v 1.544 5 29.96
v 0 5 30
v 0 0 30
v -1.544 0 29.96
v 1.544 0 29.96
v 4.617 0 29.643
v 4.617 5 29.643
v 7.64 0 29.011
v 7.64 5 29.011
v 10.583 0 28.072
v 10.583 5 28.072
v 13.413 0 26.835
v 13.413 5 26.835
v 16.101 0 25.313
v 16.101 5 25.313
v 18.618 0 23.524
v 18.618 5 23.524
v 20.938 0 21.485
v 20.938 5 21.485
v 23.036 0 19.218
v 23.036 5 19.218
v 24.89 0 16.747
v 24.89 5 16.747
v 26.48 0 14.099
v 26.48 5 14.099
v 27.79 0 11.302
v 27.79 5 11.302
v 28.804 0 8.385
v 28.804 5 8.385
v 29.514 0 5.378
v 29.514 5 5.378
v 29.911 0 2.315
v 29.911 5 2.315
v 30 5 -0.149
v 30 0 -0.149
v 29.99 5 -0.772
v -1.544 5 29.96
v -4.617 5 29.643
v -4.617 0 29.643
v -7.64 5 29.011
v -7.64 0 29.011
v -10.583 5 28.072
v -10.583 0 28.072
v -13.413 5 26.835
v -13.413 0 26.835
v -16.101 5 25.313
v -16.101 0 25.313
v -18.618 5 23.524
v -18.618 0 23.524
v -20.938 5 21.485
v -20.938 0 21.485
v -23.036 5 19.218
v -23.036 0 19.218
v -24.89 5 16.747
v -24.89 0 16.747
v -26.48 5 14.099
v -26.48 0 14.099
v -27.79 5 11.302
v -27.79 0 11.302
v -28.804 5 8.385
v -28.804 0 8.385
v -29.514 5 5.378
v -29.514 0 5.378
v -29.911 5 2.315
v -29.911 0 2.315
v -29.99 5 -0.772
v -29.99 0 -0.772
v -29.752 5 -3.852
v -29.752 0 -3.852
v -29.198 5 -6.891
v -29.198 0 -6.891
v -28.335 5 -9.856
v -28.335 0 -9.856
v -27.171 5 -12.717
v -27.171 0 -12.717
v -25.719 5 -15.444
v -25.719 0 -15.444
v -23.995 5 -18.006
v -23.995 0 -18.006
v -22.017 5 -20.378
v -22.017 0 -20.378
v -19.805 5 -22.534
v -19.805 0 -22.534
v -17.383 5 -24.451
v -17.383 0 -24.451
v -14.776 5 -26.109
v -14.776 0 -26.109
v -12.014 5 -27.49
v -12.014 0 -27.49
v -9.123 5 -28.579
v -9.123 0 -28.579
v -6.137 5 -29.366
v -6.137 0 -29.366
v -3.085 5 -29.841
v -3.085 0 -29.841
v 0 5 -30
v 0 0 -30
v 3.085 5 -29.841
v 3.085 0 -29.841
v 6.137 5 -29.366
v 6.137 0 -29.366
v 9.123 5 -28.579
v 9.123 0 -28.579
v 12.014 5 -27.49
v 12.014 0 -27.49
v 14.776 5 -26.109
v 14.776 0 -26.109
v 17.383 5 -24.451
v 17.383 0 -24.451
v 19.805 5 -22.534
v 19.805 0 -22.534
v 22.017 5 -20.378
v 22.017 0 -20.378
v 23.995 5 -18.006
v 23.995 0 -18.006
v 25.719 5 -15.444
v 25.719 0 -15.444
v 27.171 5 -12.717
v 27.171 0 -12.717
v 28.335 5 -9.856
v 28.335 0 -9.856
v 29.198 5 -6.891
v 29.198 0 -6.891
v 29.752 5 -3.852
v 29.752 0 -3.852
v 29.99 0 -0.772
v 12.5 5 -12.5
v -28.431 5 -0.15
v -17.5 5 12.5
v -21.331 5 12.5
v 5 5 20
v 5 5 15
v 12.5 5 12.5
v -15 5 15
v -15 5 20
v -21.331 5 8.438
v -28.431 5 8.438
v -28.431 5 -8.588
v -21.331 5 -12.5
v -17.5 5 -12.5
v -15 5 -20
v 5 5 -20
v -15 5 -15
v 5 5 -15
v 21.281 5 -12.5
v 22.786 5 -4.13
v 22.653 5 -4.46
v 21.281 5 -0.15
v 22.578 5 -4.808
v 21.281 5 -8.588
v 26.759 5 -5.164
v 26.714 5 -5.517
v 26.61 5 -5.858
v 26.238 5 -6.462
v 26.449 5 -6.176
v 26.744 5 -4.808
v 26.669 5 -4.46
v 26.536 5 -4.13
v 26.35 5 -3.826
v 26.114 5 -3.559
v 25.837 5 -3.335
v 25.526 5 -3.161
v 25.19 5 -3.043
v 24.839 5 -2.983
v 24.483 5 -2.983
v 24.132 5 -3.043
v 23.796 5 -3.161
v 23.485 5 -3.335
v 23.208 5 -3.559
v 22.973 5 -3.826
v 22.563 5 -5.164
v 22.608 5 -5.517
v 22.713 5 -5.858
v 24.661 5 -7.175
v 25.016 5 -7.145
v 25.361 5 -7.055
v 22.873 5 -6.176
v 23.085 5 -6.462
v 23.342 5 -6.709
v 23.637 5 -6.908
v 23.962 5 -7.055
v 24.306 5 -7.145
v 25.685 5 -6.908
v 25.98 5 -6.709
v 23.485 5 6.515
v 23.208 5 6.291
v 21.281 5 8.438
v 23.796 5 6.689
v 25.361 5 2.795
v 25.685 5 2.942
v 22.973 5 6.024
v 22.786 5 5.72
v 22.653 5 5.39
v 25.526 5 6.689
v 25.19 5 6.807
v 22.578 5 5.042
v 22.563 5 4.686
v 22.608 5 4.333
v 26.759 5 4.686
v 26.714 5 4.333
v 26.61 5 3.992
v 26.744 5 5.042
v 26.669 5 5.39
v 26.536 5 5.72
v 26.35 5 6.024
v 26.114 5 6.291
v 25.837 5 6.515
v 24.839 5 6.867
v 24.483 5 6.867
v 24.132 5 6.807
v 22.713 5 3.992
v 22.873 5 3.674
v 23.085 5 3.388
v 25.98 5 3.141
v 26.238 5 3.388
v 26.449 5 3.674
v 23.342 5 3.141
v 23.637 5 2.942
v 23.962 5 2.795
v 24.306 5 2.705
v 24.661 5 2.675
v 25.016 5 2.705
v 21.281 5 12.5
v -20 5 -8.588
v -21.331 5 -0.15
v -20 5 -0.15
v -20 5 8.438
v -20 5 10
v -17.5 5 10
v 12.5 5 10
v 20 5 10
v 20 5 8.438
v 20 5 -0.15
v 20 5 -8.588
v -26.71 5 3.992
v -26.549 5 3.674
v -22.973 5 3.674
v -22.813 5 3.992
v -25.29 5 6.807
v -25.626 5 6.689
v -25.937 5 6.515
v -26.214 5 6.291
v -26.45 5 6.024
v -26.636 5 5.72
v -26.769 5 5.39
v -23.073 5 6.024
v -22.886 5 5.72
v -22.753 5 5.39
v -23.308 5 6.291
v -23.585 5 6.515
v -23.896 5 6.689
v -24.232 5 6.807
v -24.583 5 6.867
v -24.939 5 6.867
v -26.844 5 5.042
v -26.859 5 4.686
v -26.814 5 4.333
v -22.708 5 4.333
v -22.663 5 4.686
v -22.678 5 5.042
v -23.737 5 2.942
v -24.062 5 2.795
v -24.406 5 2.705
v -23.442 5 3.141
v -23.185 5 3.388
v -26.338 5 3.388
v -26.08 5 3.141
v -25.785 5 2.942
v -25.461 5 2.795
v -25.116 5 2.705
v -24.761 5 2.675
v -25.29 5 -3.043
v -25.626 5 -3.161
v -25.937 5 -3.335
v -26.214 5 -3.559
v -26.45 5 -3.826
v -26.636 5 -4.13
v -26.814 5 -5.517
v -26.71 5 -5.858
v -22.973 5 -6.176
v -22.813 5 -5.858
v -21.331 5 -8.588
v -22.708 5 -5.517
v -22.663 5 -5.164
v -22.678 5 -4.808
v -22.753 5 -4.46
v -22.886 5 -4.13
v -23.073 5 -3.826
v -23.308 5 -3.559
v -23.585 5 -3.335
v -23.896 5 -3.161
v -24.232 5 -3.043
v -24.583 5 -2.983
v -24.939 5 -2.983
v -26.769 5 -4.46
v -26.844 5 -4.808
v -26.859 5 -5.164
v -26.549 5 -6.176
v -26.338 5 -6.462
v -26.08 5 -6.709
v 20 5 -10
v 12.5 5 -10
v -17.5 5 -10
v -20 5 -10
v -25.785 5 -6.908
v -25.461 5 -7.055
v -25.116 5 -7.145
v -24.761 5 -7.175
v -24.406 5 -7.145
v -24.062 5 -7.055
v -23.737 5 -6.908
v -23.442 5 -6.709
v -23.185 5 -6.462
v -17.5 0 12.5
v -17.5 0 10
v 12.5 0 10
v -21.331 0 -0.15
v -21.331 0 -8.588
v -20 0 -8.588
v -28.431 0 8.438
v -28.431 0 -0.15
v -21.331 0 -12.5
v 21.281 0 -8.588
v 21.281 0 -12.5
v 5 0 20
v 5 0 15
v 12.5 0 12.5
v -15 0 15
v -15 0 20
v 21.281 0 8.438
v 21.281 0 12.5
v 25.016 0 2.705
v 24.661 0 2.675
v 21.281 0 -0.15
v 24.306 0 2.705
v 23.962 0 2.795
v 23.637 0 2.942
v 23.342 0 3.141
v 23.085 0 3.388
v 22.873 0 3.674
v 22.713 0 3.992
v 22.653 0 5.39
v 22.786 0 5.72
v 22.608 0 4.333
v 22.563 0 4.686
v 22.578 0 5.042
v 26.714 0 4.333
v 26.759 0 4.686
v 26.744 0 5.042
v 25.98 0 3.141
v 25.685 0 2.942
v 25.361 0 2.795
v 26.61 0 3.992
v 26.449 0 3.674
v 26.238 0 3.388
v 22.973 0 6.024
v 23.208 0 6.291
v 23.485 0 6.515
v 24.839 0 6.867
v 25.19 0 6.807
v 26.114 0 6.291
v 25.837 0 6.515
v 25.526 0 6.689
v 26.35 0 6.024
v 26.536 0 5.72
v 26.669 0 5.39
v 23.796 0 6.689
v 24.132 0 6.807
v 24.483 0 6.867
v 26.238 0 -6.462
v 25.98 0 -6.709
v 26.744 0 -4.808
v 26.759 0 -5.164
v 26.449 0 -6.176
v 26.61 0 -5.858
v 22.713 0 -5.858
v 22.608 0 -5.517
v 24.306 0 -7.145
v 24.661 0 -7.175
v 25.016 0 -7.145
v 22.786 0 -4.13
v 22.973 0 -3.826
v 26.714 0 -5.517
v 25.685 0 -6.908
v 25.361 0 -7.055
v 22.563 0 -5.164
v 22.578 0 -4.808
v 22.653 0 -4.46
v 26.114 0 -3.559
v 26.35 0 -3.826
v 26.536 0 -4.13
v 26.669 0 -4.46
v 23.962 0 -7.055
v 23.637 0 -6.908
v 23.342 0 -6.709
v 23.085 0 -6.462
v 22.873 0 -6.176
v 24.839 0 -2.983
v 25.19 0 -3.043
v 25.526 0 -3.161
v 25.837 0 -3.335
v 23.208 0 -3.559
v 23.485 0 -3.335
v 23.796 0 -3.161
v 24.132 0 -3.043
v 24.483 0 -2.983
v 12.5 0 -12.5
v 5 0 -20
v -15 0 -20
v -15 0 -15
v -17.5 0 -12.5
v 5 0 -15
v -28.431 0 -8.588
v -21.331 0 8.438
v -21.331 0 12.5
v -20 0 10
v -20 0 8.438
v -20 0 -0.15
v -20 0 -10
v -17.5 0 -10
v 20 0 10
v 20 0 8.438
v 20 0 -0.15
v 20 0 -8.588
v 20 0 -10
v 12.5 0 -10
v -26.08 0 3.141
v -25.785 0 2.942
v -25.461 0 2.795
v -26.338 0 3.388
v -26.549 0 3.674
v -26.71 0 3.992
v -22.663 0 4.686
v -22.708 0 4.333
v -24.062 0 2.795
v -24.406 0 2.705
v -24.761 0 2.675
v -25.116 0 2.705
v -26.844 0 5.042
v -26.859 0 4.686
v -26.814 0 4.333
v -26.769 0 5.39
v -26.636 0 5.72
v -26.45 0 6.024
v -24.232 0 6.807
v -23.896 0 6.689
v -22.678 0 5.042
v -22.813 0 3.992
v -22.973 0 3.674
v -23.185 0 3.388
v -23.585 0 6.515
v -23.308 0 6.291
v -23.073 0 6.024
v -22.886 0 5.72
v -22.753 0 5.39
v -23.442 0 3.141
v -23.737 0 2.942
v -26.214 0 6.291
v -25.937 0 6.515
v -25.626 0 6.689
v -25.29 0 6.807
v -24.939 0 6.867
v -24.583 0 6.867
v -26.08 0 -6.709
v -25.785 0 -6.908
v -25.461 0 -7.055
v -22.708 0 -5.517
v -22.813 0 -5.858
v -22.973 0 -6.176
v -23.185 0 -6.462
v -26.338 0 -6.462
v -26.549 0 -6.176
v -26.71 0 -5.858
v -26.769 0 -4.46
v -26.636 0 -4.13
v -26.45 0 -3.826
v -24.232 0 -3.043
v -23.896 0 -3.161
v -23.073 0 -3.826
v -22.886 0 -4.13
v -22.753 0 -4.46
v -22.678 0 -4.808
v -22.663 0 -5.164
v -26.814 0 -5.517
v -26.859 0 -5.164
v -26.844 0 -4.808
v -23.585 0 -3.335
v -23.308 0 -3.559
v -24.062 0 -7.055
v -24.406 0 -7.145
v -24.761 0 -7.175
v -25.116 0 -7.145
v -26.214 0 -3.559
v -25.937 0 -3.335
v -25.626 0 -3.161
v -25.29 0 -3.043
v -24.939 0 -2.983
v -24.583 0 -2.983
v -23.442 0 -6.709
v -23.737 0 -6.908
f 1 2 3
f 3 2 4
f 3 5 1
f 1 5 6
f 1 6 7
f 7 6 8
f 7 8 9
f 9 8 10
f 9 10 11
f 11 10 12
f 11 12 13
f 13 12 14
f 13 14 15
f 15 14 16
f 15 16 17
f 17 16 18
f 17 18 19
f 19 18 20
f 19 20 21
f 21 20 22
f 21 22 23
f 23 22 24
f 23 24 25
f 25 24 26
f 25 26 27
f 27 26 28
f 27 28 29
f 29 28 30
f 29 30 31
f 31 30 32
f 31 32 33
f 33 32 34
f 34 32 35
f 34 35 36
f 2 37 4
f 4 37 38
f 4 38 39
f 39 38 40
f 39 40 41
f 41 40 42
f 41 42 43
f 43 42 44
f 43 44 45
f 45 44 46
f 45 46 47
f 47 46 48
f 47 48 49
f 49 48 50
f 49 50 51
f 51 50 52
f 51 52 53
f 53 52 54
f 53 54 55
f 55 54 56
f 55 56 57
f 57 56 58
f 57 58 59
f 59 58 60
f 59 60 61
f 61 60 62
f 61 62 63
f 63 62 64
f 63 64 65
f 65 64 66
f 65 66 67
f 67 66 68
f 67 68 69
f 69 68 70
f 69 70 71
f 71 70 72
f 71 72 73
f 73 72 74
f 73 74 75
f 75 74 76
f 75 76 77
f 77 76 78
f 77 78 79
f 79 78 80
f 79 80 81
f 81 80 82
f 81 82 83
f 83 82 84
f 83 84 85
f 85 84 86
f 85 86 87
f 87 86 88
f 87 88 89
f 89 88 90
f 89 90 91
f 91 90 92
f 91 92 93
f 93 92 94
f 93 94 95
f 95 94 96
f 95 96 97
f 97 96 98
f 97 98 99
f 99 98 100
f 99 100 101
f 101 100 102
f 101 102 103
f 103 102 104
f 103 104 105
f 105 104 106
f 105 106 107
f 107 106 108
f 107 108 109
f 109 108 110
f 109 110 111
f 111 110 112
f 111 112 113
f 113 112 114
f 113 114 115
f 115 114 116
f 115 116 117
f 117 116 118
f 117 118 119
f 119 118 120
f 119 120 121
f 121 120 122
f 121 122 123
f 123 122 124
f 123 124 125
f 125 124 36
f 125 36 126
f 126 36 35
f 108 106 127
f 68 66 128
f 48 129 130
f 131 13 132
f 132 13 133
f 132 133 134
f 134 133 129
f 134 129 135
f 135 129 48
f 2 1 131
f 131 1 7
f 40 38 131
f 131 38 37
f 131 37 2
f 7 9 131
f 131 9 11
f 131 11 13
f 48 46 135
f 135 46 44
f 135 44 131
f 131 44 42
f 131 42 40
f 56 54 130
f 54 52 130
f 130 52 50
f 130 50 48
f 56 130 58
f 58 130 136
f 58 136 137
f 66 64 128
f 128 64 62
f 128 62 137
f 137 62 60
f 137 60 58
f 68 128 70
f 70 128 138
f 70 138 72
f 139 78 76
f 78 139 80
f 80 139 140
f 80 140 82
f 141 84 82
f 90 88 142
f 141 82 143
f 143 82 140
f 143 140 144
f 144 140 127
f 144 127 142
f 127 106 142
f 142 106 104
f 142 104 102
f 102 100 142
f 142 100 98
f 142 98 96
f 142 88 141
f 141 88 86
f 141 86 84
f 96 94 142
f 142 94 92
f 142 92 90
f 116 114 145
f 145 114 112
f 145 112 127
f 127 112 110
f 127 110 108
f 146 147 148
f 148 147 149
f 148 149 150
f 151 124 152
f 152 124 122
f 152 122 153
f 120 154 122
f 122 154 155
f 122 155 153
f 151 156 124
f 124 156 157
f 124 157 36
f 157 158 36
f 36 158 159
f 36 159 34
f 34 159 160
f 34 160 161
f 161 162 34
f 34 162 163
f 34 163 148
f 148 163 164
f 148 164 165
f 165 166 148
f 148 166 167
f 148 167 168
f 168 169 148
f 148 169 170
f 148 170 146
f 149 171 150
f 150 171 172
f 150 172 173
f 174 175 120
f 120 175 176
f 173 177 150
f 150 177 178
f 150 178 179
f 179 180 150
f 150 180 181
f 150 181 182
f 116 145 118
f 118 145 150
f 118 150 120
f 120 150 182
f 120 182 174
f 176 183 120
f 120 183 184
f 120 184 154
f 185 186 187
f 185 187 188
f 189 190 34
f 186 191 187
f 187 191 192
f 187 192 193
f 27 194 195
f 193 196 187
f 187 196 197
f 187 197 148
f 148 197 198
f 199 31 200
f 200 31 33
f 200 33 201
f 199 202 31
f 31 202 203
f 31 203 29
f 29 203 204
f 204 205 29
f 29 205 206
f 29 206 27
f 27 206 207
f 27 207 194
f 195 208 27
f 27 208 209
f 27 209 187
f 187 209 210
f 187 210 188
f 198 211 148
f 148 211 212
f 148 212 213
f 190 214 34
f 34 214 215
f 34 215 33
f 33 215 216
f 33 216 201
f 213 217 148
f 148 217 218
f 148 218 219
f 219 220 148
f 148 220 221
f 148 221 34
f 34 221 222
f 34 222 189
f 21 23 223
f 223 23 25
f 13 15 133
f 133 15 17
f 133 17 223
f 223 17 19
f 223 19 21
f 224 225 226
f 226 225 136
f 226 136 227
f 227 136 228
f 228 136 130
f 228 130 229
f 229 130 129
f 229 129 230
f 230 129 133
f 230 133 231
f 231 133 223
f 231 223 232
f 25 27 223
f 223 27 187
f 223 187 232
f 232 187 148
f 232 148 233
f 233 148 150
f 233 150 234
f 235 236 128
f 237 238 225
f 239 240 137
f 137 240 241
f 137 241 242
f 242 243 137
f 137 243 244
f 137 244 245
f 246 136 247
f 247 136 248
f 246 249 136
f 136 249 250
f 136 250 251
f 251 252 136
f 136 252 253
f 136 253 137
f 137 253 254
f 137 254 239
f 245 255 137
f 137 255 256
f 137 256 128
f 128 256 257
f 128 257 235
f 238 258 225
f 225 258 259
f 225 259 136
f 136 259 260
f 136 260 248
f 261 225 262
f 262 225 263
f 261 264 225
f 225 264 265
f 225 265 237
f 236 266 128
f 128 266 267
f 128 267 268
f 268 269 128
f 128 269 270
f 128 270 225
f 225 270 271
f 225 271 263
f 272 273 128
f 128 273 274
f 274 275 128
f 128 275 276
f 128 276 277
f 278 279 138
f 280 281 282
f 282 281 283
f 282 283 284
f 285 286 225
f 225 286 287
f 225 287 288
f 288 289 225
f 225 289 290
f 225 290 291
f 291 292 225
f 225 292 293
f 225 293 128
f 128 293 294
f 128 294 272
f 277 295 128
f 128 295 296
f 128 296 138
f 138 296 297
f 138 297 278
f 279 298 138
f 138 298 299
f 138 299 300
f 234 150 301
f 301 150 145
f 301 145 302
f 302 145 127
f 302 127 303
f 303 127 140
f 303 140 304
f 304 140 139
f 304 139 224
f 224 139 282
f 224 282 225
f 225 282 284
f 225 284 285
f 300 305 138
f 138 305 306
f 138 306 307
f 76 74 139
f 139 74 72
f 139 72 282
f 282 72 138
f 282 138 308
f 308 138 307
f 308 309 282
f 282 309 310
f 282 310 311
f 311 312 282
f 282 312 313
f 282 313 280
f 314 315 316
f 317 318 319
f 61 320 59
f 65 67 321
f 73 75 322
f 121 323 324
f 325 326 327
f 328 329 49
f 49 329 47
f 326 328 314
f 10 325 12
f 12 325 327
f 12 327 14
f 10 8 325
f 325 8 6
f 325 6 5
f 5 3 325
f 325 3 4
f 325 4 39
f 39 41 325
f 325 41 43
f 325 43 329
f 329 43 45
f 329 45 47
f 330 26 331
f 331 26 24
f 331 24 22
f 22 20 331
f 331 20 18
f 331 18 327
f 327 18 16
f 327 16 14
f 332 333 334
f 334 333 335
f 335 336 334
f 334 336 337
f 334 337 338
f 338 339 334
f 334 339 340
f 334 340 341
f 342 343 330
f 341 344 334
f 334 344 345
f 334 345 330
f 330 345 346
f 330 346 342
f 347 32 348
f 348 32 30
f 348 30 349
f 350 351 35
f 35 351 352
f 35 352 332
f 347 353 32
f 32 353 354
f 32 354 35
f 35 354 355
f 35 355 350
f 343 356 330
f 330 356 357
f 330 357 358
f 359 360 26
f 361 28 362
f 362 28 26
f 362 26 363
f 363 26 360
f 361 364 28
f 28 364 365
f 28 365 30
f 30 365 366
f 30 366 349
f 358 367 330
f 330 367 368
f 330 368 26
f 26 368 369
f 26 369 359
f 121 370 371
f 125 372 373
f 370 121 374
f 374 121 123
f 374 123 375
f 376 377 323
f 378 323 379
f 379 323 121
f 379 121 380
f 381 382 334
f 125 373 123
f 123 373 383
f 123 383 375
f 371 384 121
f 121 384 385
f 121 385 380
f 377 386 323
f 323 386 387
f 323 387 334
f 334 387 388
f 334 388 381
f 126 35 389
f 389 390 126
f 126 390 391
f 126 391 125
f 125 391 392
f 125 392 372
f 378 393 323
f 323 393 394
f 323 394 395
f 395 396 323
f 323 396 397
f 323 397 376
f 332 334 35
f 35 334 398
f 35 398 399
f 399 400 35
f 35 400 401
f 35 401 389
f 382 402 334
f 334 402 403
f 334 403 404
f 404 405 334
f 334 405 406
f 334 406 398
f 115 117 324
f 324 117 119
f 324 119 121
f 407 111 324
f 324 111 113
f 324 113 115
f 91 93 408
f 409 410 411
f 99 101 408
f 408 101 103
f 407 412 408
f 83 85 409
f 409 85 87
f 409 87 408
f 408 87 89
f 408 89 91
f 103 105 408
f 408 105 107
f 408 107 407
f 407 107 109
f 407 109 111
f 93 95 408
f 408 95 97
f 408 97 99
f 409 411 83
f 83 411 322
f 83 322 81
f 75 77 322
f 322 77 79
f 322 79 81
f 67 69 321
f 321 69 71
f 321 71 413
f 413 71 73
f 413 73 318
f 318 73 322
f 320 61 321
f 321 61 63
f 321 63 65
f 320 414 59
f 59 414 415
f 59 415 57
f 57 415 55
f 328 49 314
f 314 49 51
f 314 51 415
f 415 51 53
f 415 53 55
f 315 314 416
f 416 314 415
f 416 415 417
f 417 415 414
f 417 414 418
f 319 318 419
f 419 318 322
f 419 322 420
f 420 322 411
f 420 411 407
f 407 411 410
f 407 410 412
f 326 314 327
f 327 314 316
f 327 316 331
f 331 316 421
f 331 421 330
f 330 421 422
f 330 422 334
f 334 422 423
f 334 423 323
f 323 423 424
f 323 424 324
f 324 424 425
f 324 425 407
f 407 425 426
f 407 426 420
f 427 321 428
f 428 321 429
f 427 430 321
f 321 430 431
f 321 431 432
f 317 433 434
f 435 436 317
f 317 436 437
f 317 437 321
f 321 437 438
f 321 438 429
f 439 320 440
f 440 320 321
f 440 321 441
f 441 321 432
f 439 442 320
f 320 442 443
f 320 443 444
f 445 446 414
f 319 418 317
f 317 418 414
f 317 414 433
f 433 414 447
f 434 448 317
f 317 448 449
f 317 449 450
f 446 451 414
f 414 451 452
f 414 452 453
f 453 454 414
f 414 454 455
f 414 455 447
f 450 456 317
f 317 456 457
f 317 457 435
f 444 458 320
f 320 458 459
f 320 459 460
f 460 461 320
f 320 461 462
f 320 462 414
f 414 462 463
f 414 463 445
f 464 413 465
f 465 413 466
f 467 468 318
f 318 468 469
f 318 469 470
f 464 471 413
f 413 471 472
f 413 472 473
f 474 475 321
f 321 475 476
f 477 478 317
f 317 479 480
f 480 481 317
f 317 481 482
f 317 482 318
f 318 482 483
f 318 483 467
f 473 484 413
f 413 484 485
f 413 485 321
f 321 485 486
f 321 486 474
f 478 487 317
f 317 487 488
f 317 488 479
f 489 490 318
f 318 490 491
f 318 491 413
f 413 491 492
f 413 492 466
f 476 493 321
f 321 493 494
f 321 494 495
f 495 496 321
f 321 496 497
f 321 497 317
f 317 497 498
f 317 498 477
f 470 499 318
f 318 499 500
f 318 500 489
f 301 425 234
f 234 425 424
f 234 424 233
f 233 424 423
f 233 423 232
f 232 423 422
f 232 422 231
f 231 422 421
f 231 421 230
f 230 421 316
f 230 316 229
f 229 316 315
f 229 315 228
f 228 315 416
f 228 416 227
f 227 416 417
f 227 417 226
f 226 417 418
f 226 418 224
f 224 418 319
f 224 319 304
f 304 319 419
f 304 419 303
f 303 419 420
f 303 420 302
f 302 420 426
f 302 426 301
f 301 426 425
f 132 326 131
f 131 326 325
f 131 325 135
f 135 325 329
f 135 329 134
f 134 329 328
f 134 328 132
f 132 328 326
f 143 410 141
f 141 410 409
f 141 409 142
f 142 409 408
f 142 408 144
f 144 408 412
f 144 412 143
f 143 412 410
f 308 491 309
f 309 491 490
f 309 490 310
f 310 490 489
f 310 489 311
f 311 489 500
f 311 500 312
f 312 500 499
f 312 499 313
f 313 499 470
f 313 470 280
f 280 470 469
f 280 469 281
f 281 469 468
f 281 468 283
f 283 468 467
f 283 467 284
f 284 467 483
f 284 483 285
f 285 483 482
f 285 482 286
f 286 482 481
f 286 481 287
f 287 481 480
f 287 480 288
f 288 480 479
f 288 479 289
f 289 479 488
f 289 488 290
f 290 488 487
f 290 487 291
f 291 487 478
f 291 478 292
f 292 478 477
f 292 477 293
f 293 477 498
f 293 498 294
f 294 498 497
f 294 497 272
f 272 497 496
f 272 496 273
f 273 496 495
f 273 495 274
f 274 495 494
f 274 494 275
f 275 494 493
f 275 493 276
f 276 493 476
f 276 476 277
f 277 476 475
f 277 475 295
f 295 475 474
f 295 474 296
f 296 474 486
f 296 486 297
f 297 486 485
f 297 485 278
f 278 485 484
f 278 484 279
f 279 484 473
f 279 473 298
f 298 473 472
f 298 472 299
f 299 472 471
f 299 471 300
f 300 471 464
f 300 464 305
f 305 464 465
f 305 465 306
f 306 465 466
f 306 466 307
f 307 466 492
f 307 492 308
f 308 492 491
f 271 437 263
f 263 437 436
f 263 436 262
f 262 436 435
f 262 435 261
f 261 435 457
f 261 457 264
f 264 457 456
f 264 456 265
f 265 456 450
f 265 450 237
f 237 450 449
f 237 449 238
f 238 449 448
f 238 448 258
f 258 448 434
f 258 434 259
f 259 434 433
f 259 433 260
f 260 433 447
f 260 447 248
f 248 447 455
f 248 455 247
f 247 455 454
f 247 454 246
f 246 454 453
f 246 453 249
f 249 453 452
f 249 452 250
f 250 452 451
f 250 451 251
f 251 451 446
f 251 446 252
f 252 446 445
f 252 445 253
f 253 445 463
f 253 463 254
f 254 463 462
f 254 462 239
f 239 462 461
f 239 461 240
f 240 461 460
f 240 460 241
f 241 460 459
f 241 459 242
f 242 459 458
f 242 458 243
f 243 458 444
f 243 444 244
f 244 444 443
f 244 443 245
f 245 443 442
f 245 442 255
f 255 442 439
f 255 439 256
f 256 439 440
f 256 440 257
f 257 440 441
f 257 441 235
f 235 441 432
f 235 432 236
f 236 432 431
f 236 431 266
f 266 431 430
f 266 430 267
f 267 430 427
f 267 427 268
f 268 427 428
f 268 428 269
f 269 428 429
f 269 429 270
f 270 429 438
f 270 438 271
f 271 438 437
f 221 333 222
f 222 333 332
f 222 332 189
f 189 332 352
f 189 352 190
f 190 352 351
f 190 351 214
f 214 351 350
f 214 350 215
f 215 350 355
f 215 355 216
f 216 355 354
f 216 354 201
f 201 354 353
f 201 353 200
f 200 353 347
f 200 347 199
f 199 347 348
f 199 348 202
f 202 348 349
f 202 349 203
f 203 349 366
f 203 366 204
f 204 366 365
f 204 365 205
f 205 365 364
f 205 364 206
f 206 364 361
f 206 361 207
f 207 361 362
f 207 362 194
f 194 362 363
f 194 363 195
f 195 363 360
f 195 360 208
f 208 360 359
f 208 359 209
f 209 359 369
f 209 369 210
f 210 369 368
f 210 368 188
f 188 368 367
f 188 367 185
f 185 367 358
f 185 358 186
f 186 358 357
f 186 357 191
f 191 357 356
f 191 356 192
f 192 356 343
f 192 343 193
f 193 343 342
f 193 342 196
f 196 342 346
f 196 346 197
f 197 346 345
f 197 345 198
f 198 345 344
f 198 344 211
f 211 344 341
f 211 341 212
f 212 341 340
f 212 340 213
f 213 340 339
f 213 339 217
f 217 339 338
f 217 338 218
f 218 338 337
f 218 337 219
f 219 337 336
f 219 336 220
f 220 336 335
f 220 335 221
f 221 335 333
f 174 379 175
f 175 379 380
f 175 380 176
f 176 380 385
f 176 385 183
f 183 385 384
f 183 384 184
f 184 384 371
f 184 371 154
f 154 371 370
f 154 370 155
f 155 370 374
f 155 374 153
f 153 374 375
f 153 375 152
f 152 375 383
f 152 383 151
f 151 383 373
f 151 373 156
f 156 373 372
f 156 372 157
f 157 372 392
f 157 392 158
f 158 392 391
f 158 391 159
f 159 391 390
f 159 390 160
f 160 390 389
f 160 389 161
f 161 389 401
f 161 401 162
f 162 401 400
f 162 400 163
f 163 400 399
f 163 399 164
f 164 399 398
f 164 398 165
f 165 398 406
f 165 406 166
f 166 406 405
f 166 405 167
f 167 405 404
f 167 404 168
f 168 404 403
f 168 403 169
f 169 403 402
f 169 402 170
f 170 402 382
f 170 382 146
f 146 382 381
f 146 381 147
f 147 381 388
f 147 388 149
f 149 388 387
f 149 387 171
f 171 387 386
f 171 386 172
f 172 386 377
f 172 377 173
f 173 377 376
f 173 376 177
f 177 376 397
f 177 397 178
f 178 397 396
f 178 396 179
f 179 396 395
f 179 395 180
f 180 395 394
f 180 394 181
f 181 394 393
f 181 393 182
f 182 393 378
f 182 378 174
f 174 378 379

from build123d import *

# Parameters (mm, degrees)
SKETCH2_R           = 30
BOSS_EXTRUDE1_DEPTH = 5
SKETCH3_W           = 40
SKETCH3_H           = 20
CUT_EXTRUDE1_DEPTH  = 6
SKETCH4_W           = 20
SKETCH4_H           = 5
CUT_EXTRUDE2_DEPTH  = 10
SKETCH5_R           = 2.1
CUT_EXTRUDE3_DEPTH  = 6


with BuildPart() as part:
    # Sketch2 → Boss-Extrude1 (new body)
    with BuildSketch(Plane(origin=(0, 0, 0), x_dir=(1, 0, 0), z_dir=(0, 1, 0))):
        Circle(SKETCH2_R)
    extrude(amount=BOSS_EXTRUDE1_DEPTH)

    # Sketch3 → Cut-Extrude1 (cut, through all)
    with BuildSketch(Plane(origin=(0, 5, 0), x_dir=(1, 0, 0), z_dir=(0, 1, 0))):
        Rectangle(SKETCH3_W, SKETCH3_H)
    extrude(amount=-CUT_EXTRUDE1_DEPTH, mode=Mode.SUBTRACT)

    # Sketch4 → Cut-Extrude2 (cut)
    with BuildSketch(Plane(origin=(0, 5, 0), x_dir=(1, 0, 0), z_dir=(0, 1, 0))):
        with Locations((-5, 17.5)):
            Rectangle(SKETCH4_W, SKETCH4_H)
        with Locations((-5, -17.5)):
            Rectangle(SKETCH4_W, SKETCH4_H)
    extrude(amount=-CUT_EXTRUDE2_DEPTH, mode=Mode.SUBTRACT)

    # Sketch5 → Cut-Extrude3 (cut, through all)
    with BuildSketch(Plane.XZ):
        with Locations((-24.761145618, -5.075)):
            Circle(SKETCH5_R)
        with Locations((-24.761145618, 4.775)):
            Circle(SKETCH5_R)
        with Locations((24.661145618, 4.775)):
            Circle(SKETCH5_R)
        with Locations((24.661145618, -5.075)):
            Circle(SKETCH5_R)
    extrude(amount=-CUT_EXTRUDE3_DEPTH, mode=Mode.SUBTRACT)


solid = part.part
